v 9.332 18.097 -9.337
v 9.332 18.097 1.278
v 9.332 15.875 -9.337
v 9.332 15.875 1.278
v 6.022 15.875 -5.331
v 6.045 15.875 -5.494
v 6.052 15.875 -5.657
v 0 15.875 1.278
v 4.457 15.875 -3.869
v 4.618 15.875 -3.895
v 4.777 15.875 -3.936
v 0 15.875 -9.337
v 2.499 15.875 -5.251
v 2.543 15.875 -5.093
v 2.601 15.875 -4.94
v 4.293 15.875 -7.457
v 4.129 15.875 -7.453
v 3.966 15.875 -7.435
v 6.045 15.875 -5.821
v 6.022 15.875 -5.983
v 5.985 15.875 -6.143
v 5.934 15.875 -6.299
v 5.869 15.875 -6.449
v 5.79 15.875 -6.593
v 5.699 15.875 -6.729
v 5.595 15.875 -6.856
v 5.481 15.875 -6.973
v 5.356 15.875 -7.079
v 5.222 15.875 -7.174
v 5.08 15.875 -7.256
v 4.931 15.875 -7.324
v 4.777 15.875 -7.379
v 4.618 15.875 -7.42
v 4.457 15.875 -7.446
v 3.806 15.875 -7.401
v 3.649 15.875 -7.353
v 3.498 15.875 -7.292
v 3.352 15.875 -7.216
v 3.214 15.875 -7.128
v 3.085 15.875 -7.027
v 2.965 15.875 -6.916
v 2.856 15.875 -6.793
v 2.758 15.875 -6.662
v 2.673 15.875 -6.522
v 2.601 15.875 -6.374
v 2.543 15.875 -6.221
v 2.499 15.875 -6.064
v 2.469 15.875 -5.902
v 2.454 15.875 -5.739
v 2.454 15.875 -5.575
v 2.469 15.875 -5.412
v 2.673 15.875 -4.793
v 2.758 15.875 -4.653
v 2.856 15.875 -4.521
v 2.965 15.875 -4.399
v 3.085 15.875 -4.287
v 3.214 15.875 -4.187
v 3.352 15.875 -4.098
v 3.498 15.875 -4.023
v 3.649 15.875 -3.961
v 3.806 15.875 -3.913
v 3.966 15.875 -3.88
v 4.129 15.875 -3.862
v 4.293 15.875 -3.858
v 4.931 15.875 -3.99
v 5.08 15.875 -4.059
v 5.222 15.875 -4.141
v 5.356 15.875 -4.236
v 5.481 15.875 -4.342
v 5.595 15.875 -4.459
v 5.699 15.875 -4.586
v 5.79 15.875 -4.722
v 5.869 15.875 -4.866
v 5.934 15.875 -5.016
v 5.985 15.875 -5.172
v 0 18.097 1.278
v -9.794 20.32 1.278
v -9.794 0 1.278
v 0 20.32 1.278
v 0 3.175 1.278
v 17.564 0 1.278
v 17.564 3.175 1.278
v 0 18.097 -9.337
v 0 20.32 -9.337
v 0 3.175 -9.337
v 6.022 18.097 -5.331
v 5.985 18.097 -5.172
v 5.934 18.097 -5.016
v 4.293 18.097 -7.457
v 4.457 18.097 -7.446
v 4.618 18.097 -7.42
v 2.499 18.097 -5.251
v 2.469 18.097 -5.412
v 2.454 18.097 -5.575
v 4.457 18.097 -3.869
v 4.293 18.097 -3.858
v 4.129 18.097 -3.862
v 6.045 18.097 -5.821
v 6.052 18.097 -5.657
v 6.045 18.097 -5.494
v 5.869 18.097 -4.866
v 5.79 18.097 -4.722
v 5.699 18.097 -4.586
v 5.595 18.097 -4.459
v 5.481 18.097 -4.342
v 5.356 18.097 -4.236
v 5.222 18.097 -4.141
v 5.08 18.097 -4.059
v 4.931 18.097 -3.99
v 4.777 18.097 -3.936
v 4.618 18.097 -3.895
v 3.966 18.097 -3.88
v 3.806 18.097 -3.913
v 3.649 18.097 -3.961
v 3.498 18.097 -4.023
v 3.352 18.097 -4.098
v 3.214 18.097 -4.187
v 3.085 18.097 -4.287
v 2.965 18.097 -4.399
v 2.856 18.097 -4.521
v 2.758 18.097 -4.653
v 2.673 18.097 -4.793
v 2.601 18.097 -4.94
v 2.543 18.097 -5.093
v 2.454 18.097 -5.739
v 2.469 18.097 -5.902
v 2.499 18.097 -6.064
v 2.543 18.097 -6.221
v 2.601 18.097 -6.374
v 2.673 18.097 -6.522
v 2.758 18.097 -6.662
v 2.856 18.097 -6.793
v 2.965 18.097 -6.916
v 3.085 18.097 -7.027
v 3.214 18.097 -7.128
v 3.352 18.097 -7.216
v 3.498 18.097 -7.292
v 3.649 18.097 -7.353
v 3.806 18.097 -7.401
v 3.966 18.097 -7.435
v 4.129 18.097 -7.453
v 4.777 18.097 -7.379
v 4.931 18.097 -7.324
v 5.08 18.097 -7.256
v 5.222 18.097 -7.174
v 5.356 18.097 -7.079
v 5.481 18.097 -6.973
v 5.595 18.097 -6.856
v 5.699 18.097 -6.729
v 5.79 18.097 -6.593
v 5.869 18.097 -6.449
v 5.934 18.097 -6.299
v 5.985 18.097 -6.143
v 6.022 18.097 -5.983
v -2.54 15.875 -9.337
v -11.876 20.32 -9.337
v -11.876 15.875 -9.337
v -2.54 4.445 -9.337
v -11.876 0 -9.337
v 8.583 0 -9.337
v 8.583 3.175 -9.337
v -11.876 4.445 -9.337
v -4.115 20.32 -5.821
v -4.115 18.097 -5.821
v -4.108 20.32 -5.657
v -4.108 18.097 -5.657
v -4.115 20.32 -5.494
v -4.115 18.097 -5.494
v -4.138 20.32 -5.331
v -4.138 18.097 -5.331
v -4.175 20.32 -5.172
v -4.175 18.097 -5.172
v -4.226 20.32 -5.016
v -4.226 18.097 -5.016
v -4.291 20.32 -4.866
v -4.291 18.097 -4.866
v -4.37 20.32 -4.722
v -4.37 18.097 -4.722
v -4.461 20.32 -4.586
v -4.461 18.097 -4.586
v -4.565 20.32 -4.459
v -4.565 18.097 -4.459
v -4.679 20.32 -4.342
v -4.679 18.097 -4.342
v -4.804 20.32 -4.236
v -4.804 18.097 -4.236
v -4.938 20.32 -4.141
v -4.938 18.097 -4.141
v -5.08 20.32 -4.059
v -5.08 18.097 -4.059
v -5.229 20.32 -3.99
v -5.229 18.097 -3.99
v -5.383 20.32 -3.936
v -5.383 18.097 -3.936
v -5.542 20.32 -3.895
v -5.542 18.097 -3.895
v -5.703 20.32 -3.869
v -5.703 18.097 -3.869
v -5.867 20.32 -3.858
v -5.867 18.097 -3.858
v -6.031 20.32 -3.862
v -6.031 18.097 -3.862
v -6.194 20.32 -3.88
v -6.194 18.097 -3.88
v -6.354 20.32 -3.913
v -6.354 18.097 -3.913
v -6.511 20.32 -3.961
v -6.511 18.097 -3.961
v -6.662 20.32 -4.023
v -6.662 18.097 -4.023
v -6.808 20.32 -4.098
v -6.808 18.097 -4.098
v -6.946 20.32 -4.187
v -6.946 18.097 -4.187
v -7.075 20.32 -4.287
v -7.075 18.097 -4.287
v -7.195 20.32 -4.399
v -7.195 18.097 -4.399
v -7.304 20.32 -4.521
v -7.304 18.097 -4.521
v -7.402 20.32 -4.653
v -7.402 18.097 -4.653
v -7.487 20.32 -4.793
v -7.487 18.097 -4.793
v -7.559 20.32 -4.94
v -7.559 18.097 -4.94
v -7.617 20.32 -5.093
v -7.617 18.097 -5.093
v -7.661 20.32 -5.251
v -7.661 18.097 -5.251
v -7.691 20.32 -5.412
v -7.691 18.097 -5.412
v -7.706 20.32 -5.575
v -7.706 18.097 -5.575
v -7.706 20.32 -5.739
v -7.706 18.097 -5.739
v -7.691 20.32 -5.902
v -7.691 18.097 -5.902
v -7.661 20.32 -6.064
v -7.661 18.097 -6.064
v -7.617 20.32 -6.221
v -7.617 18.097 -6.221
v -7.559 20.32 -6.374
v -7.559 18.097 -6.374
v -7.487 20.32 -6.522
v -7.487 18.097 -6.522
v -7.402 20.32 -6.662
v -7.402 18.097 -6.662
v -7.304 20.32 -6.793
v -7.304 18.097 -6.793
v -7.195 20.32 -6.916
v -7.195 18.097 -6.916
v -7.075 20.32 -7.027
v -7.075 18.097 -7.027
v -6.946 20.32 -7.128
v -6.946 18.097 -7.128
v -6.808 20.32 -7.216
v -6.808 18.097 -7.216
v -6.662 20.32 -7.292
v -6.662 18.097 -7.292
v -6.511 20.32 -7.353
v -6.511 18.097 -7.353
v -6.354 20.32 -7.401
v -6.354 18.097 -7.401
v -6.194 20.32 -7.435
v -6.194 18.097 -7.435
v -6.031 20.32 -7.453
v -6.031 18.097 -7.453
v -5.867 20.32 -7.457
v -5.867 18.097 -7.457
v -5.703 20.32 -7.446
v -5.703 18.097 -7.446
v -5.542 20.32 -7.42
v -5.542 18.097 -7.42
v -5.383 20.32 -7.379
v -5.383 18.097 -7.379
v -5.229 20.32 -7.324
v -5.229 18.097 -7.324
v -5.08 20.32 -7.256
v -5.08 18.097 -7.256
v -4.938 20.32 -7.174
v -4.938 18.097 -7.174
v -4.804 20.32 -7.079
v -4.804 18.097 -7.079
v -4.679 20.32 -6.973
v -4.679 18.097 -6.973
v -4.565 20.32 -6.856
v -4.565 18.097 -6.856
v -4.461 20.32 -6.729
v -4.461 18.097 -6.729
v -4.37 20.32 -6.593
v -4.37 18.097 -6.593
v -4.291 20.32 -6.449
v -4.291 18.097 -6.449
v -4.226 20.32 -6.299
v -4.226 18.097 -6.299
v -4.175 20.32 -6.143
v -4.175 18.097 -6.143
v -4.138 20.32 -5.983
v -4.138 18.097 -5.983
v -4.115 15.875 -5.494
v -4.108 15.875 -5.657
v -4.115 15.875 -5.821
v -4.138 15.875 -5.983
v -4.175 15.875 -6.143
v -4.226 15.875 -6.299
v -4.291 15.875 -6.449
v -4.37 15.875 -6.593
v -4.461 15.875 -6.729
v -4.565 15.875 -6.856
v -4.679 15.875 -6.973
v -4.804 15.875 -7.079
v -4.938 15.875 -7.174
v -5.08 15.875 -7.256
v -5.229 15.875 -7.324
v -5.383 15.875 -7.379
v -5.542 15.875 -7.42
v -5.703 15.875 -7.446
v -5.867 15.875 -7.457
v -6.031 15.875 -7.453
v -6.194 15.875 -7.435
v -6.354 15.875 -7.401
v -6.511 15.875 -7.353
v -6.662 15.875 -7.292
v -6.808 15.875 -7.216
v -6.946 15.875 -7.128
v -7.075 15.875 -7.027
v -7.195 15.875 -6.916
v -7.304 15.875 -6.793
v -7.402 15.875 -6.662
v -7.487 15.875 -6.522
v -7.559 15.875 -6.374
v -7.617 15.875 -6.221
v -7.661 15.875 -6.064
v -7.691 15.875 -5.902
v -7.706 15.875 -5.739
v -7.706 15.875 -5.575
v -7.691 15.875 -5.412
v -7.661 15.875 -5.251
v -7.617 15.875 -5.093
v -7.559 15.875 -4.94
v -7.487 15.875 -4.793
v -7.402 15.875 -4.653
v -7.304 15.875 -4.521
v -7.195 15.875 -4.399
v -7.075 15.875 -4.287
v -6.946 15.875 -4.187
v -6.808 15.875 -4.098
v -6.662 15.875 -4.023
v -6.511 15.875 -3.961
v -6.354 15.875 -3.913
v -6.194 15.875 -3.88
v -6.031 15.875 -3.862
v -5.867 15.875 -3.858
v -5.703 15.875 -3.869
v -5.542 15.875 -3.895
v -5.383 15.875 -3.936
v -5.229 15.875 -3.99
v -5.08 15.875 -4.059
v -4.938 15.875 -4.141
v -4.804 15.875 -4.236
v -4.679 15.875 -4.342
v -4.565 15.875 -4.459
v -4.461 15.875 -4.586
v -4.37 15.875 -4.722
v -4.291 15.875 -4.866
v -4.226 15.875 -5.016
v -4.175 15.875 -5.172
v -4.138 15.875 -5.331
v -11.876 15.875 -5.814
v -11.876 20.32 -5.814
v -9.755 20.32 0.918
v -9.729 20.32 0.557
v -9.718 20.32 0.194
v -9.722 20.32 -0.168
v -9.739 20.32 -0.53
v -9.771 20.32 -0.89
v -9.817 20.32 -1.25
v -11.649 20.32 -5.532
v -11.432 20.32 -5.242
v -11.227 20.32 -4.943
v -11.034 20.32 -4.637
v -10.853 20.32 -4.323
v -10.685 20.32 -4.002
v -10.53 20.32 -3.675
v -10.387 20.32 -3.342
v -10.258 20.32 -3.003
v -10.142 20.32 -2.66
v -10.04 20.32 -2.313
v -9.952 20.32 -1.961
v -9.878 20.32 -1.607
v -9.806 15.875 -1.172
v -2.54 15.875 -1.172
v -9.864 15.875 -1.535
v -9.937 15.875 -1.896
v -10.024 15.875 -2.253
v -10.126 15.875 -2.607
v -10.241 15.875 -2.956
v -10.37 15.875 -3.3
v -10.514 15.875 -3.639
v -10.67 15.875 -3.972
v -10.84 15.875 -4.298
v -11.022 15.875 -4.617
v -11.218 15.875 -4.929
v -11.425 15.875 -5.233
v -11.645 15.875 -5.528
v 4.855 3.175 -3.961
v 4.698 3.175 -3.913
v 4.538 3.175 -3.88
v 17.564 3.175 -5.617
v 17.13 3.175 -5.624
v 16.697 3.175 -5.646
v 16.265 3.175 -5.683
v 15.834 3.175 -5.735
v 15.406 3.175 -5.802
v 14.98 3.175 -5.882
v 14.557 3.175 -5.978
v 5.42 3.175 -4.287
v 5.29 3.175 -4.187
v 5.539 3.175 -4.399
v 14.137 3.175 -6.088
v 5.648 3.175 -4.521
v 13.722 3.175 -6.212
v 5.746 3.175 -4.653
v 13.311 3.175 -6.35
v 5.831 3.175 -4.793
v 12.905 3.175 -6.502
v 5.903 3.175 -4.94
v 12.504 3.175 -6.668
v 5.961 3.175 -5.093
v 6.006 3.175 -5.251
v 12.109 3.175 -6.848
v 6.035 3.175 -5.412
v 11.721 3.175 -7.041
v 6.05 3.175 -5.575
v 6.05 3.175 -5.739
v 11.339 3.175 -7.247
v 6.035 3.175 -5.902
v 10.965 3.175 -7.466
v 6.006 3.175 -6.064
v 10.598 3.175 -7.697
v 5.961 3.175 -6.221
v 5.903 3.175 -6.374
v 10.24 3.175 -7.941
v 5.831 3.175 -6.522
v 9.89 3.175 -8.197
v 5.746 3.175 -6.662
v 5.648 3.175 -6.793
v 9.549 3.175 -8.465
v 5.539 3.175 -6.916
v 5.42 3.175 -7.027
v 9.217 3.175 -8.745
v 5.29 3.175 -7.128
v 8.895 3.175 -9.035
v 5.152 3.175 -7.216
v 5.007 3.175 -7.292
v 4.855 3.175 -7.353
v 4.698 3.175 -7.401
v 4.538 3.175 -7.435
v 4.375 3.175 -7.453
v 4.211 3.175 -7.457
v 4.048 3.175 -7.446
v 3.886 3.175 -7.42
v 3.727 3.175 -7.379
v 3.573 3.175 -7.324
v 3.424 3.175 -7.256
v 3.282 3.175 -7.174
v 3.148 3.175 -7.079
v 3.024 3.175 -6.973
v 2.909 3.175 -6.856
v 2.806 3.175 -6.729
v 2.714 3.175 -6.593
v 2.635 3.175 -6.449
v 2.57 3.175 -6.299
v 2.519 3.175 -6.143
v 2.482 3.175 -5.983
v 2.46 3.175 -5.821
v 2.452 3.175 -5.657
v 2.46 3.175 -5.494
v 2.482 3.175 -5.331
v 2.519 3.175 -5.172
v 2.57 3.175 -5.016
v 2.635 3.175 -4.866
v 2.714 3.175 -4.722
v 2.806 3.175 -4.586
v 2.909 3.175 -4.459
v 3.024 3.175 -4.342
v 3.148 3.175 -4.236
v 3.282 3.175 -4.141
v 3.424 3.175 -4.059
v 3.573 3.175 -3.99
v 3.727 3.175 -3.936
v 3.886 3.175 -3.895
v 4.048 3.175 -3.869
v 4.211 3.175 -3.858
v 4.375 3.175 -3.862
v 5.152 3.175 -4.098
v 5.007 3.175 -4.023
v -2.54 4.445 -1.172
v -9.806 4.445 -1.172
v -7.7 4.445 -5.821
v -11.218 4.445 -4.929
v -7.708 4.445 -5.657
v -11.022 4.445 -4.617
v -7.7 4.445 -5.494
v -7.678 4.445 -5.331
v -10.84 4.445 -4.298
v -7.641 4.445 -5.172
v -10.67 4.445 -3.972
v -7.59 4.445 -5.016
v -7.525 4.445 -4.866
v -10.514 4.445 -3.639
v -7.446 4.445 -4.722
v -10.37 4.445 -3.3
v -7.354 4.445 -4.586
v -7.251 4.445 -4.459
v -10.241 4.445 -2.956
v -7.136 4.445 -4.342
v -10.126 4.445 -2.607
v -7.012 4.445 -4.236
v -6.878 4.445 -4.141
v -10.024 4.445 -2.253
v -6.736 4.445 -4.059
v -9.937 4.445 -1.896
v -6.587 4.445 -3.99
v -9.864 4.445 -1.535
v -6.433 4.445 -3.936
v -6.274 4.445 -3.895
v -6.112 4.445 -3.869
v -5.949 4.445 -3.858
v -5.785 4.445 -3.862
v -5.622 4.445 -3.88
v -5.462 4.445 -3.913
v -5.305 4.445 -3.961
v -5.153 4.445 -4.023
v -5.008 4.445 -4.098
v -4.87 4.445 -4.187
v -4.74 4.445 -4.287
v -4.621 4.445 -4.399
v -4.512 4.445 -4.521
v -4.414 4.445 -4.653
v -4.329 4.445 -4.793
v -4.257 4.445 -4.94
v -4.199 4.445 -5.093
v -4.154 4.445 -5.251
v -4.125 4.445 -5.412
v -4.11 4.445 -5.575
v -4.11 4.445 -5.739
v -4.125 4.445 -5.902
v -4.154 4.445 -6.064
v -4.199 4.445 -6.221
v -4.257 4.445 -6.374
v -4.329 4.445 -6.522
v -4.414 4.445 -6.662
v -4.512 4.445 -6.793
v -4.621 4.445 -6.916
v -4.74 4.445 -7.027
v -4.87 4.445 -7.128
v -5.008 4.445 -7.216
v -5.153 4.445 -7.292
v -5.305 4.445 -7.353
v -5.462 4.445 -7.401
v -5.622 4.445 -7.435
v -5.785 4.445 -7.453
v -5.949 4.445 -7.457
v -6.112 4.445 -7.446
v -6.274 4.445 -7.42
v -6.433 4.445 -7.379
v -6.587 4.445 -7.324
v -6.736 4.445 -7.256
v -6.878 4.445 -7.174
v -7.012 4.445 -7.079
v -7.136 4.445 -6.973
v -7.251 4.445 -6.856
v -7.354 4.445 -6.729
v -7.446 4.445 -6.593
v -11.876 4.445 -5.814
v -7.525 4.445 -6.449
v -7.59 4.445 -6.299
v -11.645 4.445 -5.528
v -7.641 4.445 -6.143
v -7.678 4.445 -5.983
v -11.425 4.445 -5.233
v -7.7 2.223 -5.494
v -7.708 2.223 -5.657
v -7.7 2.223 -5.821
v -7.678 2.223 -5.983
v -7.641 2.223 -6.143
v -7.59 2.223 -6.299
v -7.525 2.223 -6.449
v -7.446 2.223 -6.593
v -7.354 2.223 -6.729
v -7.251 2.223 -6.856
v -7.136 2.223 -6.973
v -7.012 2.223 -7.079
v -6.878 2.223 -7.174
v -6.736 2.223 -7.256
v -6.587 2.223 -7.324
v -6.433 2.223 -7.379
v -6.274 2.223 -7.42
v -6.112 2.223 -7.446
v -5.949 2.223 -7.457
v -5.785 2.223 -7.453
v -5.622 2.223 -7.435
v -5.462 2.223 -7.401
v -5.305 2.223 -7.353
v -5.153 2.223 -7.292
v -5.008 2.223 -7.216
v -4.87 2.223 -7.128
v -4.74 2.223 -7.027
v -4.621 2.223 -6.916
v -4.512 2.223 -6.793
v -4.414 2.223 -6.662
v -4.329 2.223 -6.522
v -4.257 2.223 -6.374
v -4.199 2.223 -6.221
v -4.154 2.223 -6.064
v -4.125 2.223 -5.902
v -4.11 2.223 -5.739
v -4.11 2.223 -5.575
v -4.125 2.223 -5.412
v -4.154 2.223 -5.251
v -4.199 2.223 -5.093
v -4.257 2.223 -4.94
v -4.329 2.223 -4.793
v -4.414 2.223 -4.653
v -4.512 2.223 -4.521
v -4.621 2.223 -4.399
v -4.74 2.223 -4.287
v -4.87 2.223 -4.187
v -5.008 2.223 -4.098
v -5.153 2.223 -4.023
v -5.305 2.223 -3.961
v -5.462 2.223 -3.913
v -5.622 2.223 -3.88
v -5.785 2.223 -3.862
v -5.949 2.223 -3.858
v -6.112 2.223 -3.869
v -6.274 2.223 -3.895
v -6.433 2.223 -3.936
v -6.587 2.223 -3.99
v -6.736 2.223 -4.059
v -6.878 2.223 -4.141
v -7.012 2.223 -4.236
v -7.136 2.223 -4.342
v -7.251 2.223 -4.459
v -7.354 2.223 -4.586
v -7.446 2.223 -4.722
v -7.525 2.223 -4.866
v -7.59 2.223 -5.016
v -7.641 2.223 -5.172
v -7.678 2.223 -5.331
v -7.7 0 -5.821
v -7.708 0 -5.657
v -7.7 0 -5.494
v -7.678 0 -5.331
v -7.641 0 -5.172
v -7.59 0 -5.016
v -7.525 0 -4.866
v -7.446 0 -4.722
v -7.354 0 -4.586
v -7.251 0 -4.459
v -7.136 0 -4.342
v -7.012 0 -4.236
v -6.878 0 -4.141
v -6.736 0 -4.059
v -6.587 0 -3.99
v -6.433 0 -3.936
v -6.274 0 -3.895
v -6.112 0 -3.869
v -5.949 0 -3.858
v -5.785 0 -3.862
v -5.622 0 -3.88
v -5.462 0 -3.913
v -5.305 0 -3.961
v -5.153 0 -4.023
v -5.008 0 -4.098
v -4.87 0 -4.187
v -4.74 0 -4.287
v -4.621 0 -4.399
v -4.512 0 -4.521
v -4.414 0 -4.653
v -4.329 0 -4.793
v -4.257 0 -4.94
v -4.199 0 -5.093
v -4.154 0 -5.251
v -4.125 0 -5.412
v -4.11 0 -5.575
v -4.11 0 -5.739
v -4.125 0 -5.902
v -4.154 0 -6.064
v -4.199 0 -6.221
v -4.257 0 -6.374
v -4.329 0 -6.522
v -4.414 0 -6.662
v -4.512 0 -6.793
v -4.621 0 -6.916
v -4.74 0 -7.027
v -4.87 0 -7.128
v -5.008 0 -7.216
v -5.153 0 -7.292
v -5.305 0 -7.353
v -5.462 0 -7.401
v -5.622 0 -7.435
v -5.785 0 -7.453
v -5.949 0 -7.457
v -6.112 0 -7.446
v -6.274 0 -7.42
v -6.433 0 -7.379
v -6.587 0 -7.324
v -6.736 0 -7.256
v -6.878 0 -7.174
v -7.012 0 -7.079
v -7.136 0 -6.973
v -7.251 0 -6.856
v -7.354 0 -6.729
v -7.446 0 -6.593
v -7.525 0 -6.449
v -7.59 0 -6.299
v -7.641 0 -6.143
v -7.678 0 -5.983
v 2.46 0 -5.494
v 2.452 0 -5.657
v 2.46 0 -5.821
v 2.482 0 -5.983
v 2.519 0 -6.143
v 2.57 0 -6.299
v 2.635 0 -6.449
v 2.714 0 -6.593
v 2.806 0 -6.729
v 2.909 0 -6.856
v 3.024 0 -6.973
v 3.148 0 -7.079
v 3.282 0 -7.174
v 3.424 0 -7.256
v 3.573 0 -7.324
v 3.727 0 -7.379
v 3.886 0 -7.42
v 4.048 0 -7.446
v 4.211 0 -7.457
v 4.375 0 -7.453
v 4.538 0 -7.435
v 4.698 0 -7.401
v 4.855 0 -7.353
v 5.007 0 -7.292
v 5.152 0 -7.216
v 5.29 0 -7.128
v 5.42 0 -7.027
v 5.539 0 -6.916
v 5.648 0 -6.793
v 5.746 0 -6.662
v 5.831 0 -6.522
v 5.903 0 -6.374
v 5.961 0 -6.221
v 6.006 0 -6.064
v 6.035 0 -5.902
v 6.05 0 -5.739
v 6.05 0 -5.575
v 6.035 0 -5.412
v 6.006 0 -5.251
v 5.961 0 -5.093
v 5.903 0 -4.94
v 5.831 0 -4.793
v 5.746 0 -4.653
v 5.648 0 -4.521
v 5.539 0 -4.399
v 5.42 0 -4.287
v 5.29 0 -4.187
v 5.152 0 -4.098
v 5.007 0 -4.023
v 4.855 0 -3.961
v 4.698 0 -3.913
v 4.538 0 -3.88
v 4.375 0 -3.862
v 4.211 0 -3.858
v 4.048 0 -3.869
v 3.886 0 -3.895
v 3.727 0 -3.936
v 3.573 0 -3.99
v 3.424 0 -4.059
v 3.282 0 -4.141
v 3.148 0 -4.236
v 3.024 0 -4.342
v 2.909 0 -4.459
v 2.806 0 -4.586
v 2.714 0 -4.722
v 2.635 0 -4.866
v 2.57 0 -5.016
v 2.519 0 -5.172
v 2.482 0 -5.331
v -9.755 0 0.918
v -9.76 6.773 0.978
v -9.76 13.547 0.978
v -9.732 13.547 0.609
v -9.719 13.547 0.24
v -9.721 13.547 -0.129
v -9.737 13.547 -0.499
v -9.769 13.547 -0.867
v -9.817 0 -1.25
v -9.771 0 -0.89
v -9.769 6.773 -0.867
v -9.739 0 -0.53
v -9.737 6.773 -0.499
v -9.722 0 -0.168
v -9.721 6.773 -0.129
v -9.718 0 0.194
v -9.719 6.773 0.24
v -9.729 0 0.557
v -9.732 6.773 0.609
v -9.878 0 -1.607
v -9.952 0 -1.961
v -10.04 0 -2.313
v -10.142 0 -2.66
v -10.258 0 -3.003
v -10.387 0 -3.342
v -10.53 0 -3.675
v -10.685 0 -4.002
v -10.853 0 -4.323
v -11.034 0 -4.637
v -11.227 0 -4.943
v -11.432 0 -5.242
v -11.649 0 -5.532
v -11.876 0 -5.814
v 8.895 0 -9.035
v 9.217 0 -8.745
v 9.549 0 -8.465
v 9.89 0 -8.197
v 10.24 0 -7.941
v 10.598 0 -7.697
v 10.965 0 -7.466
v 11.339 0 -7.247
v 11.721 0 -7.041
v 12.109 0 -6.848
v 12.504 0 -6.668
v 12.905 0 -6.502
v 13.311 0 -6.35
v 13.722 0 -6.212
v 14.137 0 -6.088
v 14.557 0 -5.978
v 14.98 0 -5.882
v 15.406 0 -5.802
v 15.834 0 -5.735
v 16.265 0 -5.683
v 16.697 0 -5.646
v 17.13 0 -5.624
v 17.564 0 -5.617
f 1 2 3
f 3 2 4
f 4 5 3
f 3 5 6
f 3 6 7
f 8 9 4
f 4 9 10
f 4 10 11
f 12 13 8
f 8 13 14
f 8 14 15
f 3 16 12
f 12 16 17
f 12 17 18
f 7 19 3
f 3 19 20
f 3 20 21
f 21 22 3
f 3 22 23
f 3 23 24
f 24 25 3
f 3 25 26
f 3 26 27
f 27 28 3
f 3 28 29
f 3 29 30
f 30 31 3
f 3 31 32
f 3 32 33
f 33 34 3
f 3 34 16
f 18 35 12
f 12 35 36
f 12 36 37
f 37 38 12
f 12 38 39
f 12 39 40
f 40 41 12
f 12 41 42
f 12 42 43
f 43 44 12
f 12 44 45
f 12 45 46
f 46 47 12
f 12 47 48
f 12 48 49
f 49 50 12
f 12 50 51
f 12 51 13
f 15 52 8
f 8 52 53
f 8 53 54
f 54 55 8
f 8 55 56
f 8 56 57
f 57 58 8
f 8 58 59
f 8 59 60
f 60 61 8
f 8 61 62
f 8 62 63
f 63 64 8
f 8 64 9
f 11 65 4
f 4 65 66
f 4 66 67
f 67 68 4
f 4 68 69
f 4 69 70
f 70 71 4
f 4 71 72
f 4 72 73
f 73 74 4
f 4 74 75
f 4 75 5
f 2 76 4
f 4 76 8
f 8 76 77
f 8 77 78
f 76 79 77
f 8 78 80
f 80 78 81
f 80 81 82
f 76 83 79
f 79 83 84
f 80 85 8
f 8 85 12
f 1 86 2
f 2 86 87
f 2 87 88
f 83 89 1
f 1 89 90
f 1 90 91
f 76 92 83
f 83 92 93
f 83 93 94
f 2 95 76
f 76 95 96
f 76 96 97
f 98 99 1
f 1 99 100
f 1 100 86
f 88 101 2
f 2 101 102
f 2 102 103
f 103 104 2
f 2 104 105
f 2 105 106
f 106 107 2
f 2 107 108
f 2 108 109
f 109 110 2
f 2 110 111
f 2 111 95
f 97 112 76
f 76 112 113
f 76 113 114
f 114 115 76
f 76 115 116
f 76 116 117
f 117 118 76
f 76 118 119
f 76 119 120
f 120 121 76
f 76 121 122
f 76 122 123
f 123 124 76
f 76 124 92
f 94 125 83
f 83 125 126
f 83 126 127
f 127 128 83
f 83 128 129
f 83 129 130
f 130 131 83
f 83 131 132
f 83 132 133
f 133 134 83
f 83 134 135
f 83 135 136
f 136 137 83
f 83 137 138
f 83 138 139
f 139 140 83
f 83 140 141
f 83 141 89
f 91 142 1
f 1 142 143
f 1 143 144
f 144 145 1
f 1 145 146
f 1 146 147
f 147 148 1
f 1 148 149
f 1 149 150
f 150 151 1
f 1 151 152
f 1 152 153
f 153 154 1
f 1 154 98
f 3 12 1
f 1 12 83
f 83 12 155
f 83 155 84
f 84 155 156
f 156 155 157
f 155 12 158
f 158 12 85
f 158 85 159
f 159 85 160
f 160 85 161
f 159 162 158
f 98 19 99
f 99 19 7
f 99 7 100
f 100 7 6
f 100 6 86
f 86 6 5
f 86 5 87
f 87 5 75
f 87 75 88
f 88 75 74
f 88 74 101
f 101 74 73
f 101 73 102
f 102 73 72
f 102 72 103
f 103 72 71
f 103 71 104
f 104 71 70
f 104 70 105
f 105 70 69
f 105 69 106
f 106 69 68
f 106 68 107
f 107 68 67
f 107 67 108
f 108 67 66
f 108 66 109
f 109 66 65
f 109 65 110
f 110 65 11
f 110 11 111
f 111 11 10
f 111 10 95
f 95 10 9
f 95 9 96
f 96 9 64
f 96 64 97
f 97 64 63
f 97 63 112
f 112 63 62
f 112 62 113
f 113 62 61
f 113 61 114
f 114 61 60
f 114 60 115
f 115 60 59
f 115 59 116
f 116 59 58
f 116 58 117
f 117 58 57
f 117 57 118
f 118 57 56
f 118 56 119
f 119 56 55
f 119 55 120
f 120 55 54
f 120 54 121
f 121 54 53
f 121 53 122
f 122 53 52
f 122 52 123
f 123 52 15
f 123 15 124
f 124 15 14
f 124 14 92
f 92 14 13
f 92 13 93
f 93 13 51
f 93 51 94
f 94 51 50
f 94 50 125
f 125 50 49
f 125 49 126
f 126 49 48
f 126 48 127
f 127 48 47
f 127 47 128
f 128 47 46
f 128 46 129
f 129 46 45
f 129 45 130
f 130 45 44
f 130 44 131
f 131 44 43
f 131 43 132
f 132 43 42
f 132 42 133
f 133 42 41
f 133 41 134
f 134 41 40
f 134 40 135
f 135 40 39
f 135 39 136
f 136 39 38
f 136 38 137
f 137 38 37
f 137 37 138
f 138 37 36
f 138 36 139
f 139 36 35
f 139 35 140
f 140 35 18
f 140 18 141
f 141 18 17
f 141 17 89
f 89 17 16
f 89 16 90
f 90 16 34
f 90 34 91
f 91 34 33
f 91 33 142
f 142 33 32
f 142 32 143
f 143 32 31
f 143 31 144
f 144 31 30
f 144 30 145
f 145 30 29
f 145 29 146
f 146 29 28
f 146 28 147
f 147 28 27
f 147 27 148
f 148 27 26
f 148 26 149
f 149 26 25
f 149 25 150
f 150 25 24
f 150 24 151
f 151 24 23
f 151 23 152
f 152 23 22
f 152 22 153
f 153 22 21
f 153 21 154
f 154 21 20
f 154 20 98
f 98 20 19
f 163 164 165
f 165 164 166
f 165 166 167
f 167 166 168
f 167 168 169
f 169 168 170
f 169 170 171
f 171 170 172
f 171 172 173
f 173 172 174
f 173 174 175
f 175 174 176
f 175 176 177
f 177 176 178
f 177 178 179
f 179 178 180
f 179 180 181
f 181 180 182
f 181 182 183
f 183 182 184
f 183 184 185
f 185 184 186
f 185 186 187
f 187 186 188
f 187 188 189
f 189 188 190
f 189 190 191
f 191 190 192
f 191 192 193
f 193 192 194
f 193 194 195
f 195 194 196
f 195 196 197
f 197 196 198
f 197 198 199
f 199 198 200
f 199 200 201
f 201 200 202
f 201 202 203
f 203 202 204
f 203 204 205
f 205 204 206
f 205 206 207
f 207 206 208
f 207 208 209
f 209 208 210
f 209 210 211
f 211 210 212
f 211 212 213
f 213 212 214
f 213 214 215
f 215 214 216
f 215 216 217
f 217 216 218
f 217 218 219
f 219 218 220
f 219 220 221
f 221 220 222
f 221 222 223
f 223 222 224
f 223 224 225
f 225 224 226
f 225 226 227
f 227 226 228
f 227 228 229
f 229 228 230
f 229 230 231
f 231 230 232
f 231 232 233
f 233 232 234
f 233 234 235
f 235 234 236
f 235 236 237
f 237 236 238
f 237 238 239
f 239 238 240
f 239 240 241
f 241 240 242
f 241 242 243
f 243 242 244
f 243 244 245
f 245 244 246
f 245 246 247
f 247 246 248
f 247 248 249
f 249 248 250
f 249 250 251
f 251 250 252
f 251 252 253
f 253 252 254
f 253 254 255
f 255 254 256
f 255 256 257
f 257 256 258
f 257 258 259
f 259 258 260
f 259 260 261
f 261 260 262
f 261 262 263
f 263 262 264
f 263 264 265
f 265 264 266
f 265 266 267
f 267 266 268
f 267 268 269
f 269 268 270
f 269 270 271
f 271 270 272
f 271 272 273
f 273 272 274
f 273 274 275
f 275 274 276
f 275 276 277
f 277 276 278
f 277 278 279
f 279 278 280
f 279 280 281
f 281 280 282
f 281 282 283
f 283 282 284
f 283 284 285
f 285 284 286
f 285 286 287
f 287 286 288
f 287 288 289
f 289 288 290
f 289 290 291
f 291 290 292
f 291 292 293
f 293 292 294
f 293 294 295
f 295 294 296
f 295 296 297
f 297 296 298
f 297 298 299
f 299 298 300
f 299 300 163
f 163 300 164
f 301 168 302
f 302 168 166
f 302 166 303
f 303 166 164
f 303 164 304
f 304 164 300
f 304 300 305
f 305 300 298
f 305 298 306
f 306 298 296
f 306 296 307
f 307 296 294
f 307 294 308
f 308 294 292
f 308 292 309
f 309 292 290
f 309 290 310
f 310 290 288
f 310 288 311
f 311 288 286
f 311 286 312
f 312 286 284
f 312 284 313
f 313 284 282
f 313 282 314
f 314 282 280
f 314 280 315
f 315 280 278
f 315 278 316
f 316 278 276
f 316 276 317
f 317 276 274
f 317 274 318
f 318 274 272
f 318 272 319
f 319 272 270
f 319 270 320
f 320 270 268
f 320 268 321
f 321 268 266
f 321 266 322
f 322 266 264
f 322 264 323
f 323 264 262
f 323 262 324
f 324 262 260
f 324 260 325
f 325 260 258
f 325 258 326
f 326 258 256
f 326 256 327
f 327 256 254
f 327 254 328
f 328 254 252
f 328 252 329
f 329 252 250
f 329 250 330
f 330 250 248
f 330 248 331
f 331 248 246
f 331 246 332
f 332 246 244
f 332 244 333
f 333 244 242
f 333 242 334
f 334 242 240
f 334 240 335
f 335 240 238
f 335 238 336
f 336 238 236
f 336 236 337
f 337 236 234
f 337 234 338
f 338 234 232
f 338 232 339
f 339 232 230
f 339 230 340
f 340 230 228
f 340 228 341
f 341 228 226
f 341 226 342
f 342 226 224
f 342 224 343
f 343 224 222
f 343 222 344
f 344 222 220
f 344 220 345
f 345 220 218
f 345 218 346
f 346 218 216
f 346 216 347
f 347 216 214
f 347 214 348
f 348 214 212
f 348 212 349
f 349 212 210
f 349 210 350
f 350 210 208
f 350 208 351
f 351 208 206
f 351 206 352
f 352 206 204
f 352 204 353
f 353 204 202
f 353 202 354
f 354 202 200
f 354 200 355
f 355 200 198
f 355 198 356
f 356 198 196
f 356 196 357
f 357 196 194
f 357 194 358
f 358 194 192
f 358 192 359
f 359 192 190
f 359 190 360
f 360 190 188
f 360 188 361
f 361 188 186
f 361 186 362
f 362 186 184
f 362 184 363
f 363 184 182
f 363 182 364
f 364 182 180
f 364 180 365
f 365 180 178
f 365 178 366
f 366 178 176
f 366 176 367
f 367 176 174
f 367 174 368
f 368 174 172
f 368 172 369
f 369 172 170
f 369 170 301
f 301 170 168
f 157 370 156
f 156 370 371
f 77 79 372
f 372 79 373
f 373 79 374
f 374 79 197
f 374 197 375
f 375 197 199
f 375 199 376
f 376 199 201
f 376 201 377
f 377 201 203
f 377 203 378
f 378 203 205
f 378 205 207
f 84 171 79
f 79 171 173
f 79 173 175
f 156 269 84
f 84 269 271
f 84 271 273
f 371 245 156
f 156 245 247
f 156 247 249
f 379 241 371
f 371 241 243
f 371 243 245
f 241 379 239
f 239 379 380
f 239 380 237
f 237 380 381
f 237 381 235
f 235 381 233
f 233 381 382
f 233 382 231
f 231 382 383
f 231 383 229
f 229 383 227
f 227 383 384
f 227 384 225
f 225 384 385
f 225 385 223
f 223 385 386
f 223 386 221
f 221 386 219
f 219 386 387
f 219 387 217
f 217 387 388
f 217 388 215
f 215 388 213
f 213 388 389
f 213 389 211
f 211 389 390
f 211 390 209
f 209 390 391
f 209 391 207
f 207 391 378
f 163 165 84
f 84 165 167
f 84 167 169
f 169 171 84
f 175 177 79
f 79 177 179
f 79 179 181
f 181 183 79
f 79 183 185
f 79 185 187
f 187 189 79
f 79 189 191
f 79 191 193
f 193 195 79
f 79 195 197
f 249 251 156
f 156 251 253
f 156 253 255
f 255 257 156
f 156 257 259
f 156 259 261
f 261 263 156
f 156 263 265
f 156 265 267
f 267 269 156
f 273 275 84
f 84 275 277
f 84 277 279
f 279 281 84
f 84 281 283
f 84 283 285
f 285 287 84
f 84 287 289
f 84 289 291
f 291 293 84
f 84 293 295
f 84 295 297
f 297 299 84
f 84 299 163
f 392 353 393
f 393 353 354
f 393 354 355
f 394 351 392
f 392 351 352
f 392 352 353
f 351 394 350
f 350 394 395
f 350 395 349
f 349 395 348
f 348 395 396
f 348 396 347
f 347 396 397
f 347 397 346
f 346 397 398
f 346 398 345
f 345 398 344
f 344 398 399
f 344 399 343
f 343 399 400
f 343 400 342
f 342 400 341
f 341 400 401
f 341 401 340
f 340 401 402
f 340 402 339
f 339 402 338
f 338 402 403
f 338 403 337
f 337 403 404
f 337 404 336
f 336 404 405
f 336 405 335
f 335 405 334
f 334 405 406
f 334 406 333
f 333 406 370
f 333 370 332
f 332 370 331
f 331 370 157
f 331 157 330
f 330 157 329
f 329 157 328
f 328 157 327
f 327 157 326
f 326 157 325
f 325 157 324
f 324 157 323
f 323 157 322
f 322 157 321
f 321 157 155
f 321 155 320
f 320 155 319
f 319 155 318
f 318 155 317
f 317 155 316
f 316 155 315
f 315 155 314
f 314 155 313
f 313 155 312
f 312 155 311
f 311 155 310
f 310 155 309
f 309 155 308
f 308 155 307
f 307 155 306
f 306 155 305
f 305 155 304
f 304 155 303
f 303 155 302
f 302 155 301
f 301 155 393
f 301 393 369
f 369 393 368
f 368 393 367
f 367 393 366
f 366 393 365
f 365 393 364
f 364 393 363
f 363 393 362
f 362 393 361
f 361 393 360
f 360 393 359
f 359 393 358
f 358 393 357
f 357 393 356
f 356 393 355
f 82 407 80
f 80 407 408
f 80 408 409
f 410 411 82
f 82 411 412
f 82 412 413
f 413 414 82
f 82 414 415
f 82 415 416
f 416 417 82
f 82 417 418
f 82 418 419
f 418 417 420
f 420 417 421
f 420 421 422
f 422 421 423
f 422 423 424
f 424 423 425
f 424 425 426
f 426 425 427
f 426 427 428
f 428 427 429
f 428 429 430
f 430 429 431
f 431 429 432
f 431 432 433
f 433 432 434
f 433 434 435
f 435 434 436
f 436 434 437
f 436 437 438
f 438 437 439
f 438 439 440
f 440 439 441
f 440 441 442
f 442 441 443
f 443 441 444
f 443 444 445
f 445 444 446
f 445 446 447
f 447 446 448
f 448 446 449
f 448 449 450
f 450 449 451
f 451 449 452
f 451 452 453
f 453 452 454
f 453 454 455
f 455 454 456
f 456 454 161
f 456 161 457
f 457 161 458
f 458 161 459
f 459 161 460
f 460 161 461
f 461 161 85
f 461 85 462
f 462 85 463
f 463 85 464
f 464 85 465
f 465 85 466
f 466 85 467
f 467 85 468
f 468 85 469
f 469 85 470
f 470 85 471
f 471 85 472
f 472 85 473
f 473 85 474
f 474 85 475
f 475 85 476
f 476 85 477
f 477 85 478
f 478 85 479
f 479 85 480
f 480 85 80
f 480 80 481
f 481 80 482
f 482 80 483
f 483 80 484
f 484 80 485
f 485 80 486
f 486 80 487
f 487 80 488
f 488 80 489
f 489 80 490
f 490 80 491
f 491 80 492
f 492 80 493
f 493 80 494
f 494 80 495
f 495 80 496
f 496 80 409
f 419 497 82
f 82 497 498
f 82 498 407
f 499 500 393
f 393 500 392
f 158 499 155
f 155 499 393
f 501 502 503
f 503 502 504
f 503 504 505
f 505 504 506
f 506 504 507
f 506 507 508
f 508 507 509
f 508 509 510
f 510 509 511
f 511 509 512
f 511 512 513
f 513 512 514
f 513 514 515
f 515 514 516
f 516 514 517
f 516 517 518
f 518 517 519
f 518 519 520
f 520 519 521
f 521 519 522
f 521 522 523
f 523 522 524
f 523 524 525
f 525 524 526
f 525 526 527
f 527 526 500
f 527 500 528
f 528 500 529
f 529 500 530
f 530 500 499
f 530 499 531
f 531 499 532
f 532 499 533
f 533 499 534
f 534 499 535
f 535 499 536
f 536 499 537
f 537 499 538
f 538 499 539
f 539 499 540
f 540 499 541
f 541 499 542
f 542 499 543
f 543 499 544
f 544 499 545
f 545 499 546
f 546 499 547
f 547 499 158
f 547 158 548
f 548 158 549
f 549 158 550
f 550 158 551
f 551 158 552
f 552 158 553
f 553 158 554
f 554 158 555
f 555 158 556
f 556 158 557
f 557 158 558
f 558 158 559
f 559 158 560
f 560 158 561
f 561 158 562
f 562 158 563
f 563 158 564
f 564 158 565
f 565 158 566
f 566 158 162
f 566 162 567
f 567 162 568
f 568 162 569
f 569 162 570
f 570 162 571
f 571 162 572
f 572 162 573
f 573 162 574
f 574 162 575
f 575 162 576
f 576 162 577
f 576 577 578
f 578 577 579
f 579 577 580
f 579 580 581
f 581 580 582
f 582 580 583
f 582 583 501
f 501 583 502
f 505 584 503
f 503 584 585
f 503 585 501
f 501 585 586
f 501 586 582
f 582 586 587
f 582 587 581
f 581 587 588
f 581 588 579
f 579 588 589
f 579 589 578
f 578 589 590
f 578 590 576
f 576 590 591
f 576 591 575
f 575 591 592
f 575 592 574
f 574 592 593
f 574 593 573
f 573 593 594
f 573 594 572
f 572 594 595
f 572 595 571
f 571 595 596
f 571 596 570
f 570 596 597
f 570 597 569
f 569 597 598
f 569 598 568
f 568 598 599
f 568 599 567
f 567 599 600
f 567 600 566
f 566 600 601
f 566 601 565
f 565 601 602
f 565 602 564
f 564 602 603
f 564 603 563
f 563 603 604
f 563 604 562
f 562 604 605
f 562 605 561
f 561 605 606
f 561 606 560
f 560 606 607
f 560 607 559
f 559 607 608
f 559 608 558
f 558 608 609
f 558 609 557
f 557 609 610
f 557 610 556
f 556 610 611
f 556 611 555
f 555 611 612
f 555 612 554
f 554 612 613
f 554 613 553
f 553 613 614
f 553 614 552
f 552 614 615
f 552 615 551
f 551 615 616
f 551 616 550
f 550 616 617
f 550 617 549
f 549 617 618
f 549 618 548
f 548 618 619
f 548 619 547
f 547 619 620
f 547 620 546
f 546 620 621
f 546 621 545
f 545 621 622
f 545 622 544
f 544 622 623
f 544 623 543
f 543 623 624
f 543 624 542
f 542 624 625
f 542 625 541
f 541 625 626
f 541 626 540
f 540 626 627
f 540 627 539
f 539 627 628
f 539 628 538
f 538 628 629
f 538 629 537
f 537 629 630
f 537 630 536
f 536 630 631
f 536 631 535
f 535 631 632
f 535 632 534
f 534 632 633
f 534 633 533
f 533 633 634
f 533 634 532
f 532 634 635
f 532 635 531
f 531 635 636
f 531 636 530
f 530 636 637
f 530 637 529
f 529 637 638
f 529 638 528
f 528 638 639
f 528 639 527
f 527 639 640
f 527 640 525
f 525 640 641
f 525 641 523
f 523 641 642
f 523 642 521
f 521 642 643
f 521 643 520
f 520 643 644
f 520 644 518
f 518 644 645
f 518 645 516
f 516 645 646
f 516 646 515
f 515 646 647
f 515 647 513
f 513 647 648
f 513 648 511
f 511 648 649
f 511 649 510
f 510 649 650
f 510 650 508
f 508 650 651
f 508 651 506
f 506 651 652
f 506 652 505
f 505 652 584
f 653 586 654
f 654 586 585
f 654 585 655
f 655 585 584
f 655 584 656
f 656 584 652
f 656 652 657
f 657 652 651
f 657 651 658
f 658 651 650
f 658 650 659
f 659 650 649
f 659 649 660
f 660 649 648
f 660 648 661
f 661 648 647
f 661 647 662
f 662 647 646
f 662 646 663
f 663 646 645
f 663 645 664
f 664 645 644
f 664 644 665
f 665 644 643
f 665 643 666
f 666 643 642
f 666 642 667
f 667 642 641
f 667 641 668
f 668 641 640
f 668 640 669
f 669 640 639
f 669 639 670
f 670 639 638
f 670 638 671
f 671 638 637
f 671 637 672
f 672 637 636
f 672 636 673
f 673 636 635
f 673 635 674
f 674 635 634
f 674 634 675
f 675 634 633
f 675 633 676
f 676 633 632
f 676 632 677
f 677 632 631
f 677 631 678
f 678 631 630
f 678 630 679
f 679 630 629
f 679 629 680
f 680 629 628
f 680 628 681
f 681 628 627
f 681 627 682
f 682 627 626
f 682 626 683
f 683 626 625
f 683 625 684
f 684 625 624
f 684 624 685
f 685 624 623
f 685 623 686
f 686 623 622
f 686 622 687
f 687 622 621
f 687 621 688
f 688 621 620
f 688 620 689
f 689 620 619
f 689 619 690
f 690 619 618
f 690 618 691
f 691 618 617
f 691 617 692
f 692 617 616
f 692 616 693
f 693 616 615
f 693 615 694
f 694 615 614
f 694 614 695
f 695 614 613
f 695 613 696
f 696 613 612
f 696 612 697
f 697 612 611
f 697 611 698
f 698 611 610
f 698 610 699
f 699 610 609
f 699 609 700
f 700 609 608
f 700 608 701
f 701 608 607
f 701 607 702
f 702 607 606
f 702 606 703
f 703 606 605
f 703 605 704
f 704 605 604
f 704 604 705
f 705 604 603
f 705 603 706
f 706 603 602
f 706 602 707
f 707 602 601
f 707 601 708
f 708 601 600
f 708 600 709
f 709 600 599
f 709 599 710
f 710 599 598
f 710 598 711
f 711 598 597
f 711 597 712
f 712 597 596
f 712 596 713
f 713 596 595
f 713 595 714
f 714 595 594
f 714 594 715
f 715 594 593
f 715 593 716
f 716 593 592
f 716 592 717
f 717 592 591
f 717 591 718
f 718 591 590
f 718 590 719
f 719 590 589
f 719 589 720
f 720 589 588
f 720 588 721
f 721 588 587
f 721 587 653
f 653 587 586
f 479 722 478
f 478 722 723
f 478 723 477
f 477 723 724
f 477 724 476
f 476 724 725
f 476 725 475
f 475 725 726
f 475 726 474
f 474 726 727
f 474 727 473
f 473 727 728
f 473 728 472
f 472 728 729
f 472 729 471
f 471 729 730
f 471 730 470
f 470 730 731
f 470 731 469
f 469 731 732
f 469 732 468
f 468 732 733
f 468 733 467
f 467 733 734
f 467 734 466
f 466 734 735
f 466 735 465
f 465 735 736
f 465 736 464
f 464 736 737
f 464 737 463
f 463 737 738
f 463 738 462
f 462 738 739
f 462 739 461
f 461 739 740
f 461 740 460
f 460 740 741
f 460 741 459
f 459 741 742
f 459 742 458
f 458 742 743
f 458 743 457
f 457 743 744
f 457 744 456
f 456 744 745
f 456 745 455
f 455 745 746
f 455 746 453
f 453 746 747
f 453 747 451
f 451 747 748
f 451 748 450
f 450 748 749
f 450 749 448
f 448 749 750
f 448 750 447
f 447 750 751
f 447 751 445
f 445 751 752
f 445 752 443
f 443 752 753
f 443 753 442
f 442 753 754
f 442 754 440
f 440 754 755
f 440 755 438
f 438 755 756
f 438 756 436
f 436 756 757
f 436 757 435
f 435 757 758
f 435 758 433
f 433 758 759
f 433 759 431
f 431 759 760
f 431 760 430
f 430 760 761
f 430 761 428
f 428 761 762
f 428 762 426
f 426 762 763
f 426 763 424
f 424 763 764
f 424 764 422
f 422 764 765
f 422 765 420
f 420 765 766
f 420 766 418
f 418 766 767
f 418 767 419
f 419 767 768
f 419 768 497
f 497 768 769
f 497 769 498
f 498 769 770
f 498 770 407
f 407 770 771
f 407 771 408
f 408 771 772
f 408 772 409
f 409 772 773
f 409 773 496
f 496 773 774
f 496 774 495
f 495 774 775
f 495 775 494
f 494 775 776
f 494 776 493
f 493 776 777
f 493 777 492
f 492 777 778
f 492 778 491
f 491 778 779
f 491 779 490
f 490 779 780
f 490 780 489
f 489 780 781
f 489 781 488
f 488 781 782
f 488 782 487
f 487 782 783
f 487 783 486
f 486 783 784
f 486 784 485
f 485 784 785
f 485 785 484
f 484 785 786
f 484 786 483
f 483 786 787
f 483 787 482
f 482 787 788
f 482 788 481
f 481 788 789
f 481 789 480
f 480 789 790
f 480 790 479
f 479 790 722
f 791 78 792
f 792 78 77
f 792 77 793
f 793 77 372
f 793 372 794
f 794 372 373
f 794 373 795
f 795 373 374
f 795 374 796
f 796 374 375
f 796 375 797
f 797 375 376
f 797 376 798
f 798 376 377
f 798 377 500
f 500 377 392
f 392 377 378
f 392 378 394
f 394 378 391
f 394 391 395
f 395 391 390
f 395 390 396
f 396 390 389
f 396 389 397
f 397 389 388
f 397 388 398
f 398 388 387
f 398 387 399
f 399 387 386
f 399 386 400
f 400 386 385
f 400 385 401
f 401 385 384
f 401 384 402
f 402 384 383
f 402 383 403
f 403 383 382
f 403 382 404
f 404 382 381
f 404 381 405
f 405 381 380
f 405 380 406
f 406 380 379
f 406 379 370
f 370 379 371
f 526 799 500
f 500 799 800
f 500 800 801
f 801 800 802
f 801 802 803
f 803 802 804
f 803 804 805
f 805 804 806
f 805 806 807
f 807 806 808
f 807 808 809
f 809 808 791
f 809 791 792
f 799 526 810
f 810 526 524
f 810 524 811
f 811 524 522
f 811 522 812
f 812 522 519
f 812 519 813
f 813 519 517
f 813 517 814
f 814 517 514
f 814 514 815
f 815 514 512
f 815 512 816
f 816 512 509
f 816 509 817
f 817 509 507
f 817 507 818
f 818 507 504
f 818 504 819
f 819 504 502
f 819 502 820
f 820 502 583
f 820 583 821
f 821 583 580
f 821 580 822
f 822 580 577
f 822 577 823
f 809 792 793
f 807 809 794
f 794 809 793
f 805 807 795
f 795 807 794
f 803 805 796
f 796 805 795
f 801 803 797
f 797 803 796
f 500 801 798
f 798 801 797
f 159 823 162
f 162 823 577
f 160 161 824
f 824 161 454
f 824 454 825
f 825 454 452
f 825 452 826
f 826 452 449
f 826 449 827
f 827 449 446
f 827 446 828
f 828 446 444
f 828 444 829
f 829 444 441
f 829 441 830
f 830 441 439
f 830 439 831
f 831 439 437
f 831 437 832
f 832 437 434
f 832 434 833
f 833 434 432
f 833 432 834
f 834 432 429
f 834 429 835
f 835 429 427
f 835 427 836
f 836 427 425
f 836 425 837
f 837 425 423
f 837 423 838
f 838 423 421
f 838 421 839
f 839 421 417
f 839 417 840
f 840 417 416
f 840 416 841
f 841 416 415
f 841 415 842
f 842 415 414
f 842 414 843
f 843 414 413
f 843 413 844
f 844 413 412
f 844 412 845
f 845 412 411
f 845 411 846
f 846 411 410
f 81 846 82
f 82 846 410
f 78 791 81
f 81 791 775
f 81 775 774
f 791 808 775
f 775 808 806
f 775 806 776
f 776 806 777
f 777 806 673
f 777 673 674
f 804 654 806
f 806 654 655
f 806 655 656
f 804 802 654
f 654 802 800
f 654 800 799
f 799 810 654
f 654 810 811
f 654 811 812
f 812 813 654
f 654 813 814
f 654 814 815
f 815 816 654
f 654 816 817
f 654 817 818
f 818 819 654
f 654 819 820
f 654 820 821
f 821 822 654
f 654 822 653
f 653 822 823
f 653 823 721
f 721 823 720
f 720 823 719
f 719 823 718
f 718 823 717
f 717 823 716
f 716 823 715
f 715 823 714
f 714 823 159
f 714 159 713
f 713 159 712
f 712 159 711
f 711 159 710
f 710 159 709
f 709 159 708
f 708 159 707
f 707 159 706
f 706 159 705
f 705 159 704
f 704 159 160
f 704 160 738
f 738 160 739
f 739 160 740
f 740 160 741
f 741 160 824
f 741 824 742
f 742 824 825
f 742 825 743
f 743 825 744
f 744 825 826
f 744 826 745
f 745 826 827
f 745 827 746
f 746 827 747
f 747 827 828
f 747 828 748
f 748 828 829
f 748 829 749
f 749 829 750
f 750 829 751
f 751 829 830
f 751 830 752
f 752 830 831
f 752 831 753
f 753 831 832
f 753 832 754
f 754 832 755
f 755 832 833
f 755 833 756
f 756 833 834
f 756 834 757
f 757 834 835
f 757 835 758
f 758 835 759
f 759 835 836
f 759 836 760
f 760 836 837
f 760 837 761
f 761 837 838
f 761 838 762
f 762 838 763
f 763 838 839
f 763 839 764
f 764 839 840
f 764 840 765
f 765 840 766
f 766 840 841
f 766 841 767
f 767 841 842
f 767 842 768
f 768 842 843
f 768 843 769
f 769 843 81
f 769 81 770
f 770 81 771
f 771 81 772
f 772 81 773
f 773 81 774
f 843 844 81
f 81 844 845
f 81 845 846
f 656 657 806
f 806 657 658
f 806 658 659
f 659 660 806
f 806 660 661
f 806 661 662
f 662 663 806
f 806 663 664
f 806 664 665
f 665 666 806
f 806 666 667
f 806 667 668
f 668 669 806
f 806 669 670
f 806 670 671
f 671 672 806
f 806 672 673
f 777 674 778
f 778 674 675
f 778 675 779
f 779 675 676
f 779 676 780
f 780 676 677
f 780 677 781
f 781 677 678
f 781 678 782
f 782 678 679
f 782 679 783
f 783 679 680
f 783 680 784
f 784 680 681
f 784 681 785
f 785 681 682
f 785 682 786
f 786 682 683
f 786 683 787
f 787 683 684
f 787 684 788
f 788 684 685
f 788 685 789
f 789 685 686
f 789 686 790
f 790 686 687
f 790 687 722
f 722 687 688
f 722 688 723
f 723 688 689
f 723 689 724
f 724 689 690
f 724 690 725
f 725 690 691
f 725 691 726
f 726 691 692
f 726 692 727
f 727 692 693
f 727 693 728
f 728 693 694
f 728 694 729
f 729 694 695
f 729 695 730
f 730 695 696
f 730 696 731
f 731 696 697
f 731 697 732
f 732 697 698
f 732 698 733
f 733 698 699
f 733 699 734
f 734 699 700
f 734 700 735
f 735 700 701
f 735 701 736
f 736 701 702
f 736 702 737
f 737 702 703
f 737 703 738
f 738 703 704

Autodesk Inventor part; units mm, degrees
ref_plane "YZ Plane" through (0, 0, 0) normal (1, 0, 0) x (0, 1, 0)
ref_plane "XZ Plane" through (0, 0, 0) normal (0, 1, 0) x (-1, 0, 0)
ref_plane "XY Plane" through (0, 0, 0) normal (0, 0, 1) x (1, 0, 0)
sketch "Sketch1" plane through (0, 0, 0) normal (0, 1, 0) x (-1, 0, 0)
  arc A0 (-17.5636, 5.8132) -> (-8.5833, 9.5329) centre (-17.5636, 18.5132) ccw
  arc A1 (-17.5636, 5.8132) -> (-8.5833, 9.5329) centre (-17.5636, 18.5132) ccw
  arc A2 (-8.5833, -9.3366) -> (-17.5636, -5.6168) centre (-17.5636, -18.3168) ccw
  arc A3 (-8.5833, -9.3366) -> (-17.5636, -5.6168) centre (-17.5636, -18.3168) ccw
  line L0 (-17.5636, 5.8132) -> (-17.5636, -5.6168)
  line L1 (-8.5833, 9.5329) -> (11.8765, 9.5329)
  line L2 (-8.5833, -9.3366) -> (11.1934, -9.3366)
  arc A4 (11.8765, 6.0101) -> (11.8765, -5.8137) centre (18.8929, 0.0982) ccw
  line L3 (11.8765, -9.3366) -> (11.1934, -9.3366)
  line L4 (11.8765, 9.5329) -> (11.8765, 6.0101)
  line L5 (11.8765, -5.8137) -> (11.8765, -9.3366)
  circle A5 centre (5.9079, 5.8536) radius 1.8
  circle A6 centre (5.9079, 5.8536) radius 1.8
  circle A7 centre (-4.2521, 5.8536) radius 1.8
  circle A8 centre (-4.2521, 5.8536) radius 1.8
  circle A9 centre (5.9079, -5.6573) radius 1.8
  circle A10 centre (5.9079, -5.6573) radius 1.8
  circle A11 centre (-4.2521, -5.6573) radius 1.8
  circle A12 centre (-4.2521, -5.6573) radius 1.8
  point P0 (12.4052, 6.5859)
extrude "Extrusion1" add sketch "Sketch1" along normal blind 4.445
sketch "Sketch2" plane through (0, 4.445, 0) normal (0, 1, 0) x (1, 0, 0)
  line L0 (-11.8765, -9.5329) -> (8.5833, -9.5329) projected
  line L1 (8.5833, 9.3366) -> (-11.8765, 9.3366) projected
  line L2 (0, -9.5329) -> (-2.54, -9.5329)
  line L3 (-2.54, 9.3366) -> (0, 9.3366)
  line L4 (0, 9.3366) -> (0, -9.5329)
  line L5 (-2.54, -1.3682) -> (-9.8062, -1.3682)
  line L6 (-2.54, 1.1718) -> (-9.8062, 1.1718)
  arc A0 (-11.8765, -6.0101) -> (-11.8765, 5.8137) centre (-18.8929, -0.0982) ccw projected
  arc A1 (-9.8062, -1.3682) -> (-9.8062, 1.1718) centre (-18.8929, -0.0982) ccw
  line L7 (-2.54, -9.5329) -> (-2.54, -1.3682)
  line L8 (-2.54, 1.1718) -> (-2.54, 9.3366)
  point P0 (0, 0)
  dimension "d2" = 2.54
extrude "Extrusion2" add sketch "Sketch2" along normal blind 11.43
sketch "Sketch3" plane through (0, 4.445, 0) normal (0, 1, 0) x (1, 0, 0)
  line L0 (0, -11.1934) -> (18.2988, -11.1934)
  line L1 (18.2988, -11.1934) -> (18.2988, 11.7125)
  line L2 (18.2988, 11.7125) -> (0, 11.7125)
  line L3 (0, 11.7125) -> (0, -11.1934)
  point P0 (0, 0)
extrude "Extrusion3" cut sketch "Sketch3" against normal blind 1.27
sketch "Sketch4" plane through (0, 15.875, 0) normal (0, 1, 0) x (1, 0, 0)
  arc A0 (20.271, 9.3366) -> (20.3081, -9.5329) centre (70.2056, 0) ccw
  line L0 (8.5833, -9.5329) -> (0, -9.5329) projected
  line L1 (-11.8765, -6.0101) -> (-11.8765, -9.5329) projected
  line L2 (7.4252, -9.5329) -> (-11.8765, -9.5329)
  line L3 (-11.8765, -9.5329) -> (-11.8765, -6.0101)
  arc A1 (-11.8765, -6.0101) -> (-11.8765, 5.8137) centre (-18.8929, -0.0982) ccw projected
  line L4 (-11.8765, 9.3366) -> (-11.8765, 5.8137) projected
  line L5 (-11.8765, 5.8137) -> (-11.8765, 9.3366)
  line L6 (-11.8765, 9.3366) -> (7.3957, 9.3366)
  line L7 (0, 9.3366) -> (8.5833, 9.3366) projected
  arc A2 (-11.8765, -6.0101) -> (-11.8765, 5.8137) centre (-18.8929, -0.0982) ccw
  line L8 (-11.8765, -9.5329) -> (8.5833, -9.5329) projected
  line L9 (-11.8765, -9.5329) -> (20.3081, -9.5329)
  line L10 (8.5833, 9.3366) -> (-11.8765, 9.3366) projected
  line L11 (-11.8765, 9.3366) -> (20.271, 9.3366)
  circle A3 centre (-5.9079, -5.8536) radius 1.8 projected
  circle A4 centre (-5.9079, -5.8536) radius 1.8
  circle A5 centre (-5.9079, 5.6573) radius 1.8 projected
  circle A6 centre (-5.9079, 5.6573) radius 1.8
  circle A7 centre (4.2521, -5.8536) radius 1.8 projected
  circle A8 centre (4.2521, -5.8536) radius 1.8
  circle A9 centre (4.2521, 5.6573) radius 1.8 projected
  circle A10 centre (4.2521, 5.6573) radius 1.8
  circle A11 centre (14.4121, -0.0982) radius 1.8
  point P0 (0, 0)
  dimension "d10" = 101.6
  dimension "d13" = 3.6
extrude "Extrusion4" add sketch "Sketch4" along normal blind 4.445
sketch "Sketch5" plane through (0, 20.32, 0) normal (0, 1, 0) x (1, 0, 0)
  line L0 (0, -9.5329) -> (20.3081, -9.5329) projected
  line L1 (20.3081, -9.5329) -> (0, -9.5329)
  line L2 (0, -9.5329) -> (0, 9.3366) projected
  line L3 (0, -9.5329) -> (0, 9.3366)
  line L4 (20.271, 9.3366) -> (0, 9.3366) projected
  line L5 (0, 9.3366) -> (20.271, 9.3366)
  arc A0 (20.271, 9.3366) -> (20.3081, -9.5329) centre (70.2056, 0) ccw
  circle A1 centre (4.2521, -5.8536) radius 1.8 projected
  circle A2 centre (4.2521, -5.8536) radius 1.8
  circle A3 centre (4.2521, 5.6573) radius 1.8 projected
  circle A4 centre (4.2521, 5.6573) radius 1.8
  circle A5 centre (14.4121, -0.0982) radius 1.8 projected
  circle A6 centre (14.4121, -0.0982) radius 1.8
  point P0 (0, 0)
extrude "Extrusion5" cut sketch "Sketch5" against normal blind 2.2225
sketch "Sketch9" plane through (-11.8765, 0, 9.5329) normal (0, 0, 1) x (1, 0, 0)
  line L0 (-6.6056, 25.3261) -> (40.6741, 25.3261)
  line L1 (40.6741, 25.3261) -> (40.6741, -4.6288)
  line L2 (40.6741, -4.6288) -> (-6.6056, -4.6288)
  line L3 (-6.6056, -4.6288) -> (-6.6056, 25.3261)
  point P0 (11.8765, 0)
extrude "Extrusion7" cut sketch "Sketch9" against normal blind 8.255
sketch "Sketch10" plane through (0, 18.0975, 0) normal (0, 1, 0) x (1, 0, 0)
  circle A0 centre (4.2521, 5.6573) radius 1.8 projected
  line L0 (0, -1.2779) -> (0, 9.3366) projected
  line L1 (9.3321, 9.9549) -> (21.2421, 9.9549)
  line L2 (21.2421, 9.9549) -> (21.2421, -3.3791)
  line L3 (21.2421, -3.3791) -> (9.3321, -3.3791)
  line L4 (9.3321, -3.3791) -> (9.3321, 9.9549)
  point P0 (0, 0)
extrude "Extrusion8" cut sketch "Sketch10" against normal blind 8.1534 contours L1 L2 L3 L4
properties part number "ServoBase"
